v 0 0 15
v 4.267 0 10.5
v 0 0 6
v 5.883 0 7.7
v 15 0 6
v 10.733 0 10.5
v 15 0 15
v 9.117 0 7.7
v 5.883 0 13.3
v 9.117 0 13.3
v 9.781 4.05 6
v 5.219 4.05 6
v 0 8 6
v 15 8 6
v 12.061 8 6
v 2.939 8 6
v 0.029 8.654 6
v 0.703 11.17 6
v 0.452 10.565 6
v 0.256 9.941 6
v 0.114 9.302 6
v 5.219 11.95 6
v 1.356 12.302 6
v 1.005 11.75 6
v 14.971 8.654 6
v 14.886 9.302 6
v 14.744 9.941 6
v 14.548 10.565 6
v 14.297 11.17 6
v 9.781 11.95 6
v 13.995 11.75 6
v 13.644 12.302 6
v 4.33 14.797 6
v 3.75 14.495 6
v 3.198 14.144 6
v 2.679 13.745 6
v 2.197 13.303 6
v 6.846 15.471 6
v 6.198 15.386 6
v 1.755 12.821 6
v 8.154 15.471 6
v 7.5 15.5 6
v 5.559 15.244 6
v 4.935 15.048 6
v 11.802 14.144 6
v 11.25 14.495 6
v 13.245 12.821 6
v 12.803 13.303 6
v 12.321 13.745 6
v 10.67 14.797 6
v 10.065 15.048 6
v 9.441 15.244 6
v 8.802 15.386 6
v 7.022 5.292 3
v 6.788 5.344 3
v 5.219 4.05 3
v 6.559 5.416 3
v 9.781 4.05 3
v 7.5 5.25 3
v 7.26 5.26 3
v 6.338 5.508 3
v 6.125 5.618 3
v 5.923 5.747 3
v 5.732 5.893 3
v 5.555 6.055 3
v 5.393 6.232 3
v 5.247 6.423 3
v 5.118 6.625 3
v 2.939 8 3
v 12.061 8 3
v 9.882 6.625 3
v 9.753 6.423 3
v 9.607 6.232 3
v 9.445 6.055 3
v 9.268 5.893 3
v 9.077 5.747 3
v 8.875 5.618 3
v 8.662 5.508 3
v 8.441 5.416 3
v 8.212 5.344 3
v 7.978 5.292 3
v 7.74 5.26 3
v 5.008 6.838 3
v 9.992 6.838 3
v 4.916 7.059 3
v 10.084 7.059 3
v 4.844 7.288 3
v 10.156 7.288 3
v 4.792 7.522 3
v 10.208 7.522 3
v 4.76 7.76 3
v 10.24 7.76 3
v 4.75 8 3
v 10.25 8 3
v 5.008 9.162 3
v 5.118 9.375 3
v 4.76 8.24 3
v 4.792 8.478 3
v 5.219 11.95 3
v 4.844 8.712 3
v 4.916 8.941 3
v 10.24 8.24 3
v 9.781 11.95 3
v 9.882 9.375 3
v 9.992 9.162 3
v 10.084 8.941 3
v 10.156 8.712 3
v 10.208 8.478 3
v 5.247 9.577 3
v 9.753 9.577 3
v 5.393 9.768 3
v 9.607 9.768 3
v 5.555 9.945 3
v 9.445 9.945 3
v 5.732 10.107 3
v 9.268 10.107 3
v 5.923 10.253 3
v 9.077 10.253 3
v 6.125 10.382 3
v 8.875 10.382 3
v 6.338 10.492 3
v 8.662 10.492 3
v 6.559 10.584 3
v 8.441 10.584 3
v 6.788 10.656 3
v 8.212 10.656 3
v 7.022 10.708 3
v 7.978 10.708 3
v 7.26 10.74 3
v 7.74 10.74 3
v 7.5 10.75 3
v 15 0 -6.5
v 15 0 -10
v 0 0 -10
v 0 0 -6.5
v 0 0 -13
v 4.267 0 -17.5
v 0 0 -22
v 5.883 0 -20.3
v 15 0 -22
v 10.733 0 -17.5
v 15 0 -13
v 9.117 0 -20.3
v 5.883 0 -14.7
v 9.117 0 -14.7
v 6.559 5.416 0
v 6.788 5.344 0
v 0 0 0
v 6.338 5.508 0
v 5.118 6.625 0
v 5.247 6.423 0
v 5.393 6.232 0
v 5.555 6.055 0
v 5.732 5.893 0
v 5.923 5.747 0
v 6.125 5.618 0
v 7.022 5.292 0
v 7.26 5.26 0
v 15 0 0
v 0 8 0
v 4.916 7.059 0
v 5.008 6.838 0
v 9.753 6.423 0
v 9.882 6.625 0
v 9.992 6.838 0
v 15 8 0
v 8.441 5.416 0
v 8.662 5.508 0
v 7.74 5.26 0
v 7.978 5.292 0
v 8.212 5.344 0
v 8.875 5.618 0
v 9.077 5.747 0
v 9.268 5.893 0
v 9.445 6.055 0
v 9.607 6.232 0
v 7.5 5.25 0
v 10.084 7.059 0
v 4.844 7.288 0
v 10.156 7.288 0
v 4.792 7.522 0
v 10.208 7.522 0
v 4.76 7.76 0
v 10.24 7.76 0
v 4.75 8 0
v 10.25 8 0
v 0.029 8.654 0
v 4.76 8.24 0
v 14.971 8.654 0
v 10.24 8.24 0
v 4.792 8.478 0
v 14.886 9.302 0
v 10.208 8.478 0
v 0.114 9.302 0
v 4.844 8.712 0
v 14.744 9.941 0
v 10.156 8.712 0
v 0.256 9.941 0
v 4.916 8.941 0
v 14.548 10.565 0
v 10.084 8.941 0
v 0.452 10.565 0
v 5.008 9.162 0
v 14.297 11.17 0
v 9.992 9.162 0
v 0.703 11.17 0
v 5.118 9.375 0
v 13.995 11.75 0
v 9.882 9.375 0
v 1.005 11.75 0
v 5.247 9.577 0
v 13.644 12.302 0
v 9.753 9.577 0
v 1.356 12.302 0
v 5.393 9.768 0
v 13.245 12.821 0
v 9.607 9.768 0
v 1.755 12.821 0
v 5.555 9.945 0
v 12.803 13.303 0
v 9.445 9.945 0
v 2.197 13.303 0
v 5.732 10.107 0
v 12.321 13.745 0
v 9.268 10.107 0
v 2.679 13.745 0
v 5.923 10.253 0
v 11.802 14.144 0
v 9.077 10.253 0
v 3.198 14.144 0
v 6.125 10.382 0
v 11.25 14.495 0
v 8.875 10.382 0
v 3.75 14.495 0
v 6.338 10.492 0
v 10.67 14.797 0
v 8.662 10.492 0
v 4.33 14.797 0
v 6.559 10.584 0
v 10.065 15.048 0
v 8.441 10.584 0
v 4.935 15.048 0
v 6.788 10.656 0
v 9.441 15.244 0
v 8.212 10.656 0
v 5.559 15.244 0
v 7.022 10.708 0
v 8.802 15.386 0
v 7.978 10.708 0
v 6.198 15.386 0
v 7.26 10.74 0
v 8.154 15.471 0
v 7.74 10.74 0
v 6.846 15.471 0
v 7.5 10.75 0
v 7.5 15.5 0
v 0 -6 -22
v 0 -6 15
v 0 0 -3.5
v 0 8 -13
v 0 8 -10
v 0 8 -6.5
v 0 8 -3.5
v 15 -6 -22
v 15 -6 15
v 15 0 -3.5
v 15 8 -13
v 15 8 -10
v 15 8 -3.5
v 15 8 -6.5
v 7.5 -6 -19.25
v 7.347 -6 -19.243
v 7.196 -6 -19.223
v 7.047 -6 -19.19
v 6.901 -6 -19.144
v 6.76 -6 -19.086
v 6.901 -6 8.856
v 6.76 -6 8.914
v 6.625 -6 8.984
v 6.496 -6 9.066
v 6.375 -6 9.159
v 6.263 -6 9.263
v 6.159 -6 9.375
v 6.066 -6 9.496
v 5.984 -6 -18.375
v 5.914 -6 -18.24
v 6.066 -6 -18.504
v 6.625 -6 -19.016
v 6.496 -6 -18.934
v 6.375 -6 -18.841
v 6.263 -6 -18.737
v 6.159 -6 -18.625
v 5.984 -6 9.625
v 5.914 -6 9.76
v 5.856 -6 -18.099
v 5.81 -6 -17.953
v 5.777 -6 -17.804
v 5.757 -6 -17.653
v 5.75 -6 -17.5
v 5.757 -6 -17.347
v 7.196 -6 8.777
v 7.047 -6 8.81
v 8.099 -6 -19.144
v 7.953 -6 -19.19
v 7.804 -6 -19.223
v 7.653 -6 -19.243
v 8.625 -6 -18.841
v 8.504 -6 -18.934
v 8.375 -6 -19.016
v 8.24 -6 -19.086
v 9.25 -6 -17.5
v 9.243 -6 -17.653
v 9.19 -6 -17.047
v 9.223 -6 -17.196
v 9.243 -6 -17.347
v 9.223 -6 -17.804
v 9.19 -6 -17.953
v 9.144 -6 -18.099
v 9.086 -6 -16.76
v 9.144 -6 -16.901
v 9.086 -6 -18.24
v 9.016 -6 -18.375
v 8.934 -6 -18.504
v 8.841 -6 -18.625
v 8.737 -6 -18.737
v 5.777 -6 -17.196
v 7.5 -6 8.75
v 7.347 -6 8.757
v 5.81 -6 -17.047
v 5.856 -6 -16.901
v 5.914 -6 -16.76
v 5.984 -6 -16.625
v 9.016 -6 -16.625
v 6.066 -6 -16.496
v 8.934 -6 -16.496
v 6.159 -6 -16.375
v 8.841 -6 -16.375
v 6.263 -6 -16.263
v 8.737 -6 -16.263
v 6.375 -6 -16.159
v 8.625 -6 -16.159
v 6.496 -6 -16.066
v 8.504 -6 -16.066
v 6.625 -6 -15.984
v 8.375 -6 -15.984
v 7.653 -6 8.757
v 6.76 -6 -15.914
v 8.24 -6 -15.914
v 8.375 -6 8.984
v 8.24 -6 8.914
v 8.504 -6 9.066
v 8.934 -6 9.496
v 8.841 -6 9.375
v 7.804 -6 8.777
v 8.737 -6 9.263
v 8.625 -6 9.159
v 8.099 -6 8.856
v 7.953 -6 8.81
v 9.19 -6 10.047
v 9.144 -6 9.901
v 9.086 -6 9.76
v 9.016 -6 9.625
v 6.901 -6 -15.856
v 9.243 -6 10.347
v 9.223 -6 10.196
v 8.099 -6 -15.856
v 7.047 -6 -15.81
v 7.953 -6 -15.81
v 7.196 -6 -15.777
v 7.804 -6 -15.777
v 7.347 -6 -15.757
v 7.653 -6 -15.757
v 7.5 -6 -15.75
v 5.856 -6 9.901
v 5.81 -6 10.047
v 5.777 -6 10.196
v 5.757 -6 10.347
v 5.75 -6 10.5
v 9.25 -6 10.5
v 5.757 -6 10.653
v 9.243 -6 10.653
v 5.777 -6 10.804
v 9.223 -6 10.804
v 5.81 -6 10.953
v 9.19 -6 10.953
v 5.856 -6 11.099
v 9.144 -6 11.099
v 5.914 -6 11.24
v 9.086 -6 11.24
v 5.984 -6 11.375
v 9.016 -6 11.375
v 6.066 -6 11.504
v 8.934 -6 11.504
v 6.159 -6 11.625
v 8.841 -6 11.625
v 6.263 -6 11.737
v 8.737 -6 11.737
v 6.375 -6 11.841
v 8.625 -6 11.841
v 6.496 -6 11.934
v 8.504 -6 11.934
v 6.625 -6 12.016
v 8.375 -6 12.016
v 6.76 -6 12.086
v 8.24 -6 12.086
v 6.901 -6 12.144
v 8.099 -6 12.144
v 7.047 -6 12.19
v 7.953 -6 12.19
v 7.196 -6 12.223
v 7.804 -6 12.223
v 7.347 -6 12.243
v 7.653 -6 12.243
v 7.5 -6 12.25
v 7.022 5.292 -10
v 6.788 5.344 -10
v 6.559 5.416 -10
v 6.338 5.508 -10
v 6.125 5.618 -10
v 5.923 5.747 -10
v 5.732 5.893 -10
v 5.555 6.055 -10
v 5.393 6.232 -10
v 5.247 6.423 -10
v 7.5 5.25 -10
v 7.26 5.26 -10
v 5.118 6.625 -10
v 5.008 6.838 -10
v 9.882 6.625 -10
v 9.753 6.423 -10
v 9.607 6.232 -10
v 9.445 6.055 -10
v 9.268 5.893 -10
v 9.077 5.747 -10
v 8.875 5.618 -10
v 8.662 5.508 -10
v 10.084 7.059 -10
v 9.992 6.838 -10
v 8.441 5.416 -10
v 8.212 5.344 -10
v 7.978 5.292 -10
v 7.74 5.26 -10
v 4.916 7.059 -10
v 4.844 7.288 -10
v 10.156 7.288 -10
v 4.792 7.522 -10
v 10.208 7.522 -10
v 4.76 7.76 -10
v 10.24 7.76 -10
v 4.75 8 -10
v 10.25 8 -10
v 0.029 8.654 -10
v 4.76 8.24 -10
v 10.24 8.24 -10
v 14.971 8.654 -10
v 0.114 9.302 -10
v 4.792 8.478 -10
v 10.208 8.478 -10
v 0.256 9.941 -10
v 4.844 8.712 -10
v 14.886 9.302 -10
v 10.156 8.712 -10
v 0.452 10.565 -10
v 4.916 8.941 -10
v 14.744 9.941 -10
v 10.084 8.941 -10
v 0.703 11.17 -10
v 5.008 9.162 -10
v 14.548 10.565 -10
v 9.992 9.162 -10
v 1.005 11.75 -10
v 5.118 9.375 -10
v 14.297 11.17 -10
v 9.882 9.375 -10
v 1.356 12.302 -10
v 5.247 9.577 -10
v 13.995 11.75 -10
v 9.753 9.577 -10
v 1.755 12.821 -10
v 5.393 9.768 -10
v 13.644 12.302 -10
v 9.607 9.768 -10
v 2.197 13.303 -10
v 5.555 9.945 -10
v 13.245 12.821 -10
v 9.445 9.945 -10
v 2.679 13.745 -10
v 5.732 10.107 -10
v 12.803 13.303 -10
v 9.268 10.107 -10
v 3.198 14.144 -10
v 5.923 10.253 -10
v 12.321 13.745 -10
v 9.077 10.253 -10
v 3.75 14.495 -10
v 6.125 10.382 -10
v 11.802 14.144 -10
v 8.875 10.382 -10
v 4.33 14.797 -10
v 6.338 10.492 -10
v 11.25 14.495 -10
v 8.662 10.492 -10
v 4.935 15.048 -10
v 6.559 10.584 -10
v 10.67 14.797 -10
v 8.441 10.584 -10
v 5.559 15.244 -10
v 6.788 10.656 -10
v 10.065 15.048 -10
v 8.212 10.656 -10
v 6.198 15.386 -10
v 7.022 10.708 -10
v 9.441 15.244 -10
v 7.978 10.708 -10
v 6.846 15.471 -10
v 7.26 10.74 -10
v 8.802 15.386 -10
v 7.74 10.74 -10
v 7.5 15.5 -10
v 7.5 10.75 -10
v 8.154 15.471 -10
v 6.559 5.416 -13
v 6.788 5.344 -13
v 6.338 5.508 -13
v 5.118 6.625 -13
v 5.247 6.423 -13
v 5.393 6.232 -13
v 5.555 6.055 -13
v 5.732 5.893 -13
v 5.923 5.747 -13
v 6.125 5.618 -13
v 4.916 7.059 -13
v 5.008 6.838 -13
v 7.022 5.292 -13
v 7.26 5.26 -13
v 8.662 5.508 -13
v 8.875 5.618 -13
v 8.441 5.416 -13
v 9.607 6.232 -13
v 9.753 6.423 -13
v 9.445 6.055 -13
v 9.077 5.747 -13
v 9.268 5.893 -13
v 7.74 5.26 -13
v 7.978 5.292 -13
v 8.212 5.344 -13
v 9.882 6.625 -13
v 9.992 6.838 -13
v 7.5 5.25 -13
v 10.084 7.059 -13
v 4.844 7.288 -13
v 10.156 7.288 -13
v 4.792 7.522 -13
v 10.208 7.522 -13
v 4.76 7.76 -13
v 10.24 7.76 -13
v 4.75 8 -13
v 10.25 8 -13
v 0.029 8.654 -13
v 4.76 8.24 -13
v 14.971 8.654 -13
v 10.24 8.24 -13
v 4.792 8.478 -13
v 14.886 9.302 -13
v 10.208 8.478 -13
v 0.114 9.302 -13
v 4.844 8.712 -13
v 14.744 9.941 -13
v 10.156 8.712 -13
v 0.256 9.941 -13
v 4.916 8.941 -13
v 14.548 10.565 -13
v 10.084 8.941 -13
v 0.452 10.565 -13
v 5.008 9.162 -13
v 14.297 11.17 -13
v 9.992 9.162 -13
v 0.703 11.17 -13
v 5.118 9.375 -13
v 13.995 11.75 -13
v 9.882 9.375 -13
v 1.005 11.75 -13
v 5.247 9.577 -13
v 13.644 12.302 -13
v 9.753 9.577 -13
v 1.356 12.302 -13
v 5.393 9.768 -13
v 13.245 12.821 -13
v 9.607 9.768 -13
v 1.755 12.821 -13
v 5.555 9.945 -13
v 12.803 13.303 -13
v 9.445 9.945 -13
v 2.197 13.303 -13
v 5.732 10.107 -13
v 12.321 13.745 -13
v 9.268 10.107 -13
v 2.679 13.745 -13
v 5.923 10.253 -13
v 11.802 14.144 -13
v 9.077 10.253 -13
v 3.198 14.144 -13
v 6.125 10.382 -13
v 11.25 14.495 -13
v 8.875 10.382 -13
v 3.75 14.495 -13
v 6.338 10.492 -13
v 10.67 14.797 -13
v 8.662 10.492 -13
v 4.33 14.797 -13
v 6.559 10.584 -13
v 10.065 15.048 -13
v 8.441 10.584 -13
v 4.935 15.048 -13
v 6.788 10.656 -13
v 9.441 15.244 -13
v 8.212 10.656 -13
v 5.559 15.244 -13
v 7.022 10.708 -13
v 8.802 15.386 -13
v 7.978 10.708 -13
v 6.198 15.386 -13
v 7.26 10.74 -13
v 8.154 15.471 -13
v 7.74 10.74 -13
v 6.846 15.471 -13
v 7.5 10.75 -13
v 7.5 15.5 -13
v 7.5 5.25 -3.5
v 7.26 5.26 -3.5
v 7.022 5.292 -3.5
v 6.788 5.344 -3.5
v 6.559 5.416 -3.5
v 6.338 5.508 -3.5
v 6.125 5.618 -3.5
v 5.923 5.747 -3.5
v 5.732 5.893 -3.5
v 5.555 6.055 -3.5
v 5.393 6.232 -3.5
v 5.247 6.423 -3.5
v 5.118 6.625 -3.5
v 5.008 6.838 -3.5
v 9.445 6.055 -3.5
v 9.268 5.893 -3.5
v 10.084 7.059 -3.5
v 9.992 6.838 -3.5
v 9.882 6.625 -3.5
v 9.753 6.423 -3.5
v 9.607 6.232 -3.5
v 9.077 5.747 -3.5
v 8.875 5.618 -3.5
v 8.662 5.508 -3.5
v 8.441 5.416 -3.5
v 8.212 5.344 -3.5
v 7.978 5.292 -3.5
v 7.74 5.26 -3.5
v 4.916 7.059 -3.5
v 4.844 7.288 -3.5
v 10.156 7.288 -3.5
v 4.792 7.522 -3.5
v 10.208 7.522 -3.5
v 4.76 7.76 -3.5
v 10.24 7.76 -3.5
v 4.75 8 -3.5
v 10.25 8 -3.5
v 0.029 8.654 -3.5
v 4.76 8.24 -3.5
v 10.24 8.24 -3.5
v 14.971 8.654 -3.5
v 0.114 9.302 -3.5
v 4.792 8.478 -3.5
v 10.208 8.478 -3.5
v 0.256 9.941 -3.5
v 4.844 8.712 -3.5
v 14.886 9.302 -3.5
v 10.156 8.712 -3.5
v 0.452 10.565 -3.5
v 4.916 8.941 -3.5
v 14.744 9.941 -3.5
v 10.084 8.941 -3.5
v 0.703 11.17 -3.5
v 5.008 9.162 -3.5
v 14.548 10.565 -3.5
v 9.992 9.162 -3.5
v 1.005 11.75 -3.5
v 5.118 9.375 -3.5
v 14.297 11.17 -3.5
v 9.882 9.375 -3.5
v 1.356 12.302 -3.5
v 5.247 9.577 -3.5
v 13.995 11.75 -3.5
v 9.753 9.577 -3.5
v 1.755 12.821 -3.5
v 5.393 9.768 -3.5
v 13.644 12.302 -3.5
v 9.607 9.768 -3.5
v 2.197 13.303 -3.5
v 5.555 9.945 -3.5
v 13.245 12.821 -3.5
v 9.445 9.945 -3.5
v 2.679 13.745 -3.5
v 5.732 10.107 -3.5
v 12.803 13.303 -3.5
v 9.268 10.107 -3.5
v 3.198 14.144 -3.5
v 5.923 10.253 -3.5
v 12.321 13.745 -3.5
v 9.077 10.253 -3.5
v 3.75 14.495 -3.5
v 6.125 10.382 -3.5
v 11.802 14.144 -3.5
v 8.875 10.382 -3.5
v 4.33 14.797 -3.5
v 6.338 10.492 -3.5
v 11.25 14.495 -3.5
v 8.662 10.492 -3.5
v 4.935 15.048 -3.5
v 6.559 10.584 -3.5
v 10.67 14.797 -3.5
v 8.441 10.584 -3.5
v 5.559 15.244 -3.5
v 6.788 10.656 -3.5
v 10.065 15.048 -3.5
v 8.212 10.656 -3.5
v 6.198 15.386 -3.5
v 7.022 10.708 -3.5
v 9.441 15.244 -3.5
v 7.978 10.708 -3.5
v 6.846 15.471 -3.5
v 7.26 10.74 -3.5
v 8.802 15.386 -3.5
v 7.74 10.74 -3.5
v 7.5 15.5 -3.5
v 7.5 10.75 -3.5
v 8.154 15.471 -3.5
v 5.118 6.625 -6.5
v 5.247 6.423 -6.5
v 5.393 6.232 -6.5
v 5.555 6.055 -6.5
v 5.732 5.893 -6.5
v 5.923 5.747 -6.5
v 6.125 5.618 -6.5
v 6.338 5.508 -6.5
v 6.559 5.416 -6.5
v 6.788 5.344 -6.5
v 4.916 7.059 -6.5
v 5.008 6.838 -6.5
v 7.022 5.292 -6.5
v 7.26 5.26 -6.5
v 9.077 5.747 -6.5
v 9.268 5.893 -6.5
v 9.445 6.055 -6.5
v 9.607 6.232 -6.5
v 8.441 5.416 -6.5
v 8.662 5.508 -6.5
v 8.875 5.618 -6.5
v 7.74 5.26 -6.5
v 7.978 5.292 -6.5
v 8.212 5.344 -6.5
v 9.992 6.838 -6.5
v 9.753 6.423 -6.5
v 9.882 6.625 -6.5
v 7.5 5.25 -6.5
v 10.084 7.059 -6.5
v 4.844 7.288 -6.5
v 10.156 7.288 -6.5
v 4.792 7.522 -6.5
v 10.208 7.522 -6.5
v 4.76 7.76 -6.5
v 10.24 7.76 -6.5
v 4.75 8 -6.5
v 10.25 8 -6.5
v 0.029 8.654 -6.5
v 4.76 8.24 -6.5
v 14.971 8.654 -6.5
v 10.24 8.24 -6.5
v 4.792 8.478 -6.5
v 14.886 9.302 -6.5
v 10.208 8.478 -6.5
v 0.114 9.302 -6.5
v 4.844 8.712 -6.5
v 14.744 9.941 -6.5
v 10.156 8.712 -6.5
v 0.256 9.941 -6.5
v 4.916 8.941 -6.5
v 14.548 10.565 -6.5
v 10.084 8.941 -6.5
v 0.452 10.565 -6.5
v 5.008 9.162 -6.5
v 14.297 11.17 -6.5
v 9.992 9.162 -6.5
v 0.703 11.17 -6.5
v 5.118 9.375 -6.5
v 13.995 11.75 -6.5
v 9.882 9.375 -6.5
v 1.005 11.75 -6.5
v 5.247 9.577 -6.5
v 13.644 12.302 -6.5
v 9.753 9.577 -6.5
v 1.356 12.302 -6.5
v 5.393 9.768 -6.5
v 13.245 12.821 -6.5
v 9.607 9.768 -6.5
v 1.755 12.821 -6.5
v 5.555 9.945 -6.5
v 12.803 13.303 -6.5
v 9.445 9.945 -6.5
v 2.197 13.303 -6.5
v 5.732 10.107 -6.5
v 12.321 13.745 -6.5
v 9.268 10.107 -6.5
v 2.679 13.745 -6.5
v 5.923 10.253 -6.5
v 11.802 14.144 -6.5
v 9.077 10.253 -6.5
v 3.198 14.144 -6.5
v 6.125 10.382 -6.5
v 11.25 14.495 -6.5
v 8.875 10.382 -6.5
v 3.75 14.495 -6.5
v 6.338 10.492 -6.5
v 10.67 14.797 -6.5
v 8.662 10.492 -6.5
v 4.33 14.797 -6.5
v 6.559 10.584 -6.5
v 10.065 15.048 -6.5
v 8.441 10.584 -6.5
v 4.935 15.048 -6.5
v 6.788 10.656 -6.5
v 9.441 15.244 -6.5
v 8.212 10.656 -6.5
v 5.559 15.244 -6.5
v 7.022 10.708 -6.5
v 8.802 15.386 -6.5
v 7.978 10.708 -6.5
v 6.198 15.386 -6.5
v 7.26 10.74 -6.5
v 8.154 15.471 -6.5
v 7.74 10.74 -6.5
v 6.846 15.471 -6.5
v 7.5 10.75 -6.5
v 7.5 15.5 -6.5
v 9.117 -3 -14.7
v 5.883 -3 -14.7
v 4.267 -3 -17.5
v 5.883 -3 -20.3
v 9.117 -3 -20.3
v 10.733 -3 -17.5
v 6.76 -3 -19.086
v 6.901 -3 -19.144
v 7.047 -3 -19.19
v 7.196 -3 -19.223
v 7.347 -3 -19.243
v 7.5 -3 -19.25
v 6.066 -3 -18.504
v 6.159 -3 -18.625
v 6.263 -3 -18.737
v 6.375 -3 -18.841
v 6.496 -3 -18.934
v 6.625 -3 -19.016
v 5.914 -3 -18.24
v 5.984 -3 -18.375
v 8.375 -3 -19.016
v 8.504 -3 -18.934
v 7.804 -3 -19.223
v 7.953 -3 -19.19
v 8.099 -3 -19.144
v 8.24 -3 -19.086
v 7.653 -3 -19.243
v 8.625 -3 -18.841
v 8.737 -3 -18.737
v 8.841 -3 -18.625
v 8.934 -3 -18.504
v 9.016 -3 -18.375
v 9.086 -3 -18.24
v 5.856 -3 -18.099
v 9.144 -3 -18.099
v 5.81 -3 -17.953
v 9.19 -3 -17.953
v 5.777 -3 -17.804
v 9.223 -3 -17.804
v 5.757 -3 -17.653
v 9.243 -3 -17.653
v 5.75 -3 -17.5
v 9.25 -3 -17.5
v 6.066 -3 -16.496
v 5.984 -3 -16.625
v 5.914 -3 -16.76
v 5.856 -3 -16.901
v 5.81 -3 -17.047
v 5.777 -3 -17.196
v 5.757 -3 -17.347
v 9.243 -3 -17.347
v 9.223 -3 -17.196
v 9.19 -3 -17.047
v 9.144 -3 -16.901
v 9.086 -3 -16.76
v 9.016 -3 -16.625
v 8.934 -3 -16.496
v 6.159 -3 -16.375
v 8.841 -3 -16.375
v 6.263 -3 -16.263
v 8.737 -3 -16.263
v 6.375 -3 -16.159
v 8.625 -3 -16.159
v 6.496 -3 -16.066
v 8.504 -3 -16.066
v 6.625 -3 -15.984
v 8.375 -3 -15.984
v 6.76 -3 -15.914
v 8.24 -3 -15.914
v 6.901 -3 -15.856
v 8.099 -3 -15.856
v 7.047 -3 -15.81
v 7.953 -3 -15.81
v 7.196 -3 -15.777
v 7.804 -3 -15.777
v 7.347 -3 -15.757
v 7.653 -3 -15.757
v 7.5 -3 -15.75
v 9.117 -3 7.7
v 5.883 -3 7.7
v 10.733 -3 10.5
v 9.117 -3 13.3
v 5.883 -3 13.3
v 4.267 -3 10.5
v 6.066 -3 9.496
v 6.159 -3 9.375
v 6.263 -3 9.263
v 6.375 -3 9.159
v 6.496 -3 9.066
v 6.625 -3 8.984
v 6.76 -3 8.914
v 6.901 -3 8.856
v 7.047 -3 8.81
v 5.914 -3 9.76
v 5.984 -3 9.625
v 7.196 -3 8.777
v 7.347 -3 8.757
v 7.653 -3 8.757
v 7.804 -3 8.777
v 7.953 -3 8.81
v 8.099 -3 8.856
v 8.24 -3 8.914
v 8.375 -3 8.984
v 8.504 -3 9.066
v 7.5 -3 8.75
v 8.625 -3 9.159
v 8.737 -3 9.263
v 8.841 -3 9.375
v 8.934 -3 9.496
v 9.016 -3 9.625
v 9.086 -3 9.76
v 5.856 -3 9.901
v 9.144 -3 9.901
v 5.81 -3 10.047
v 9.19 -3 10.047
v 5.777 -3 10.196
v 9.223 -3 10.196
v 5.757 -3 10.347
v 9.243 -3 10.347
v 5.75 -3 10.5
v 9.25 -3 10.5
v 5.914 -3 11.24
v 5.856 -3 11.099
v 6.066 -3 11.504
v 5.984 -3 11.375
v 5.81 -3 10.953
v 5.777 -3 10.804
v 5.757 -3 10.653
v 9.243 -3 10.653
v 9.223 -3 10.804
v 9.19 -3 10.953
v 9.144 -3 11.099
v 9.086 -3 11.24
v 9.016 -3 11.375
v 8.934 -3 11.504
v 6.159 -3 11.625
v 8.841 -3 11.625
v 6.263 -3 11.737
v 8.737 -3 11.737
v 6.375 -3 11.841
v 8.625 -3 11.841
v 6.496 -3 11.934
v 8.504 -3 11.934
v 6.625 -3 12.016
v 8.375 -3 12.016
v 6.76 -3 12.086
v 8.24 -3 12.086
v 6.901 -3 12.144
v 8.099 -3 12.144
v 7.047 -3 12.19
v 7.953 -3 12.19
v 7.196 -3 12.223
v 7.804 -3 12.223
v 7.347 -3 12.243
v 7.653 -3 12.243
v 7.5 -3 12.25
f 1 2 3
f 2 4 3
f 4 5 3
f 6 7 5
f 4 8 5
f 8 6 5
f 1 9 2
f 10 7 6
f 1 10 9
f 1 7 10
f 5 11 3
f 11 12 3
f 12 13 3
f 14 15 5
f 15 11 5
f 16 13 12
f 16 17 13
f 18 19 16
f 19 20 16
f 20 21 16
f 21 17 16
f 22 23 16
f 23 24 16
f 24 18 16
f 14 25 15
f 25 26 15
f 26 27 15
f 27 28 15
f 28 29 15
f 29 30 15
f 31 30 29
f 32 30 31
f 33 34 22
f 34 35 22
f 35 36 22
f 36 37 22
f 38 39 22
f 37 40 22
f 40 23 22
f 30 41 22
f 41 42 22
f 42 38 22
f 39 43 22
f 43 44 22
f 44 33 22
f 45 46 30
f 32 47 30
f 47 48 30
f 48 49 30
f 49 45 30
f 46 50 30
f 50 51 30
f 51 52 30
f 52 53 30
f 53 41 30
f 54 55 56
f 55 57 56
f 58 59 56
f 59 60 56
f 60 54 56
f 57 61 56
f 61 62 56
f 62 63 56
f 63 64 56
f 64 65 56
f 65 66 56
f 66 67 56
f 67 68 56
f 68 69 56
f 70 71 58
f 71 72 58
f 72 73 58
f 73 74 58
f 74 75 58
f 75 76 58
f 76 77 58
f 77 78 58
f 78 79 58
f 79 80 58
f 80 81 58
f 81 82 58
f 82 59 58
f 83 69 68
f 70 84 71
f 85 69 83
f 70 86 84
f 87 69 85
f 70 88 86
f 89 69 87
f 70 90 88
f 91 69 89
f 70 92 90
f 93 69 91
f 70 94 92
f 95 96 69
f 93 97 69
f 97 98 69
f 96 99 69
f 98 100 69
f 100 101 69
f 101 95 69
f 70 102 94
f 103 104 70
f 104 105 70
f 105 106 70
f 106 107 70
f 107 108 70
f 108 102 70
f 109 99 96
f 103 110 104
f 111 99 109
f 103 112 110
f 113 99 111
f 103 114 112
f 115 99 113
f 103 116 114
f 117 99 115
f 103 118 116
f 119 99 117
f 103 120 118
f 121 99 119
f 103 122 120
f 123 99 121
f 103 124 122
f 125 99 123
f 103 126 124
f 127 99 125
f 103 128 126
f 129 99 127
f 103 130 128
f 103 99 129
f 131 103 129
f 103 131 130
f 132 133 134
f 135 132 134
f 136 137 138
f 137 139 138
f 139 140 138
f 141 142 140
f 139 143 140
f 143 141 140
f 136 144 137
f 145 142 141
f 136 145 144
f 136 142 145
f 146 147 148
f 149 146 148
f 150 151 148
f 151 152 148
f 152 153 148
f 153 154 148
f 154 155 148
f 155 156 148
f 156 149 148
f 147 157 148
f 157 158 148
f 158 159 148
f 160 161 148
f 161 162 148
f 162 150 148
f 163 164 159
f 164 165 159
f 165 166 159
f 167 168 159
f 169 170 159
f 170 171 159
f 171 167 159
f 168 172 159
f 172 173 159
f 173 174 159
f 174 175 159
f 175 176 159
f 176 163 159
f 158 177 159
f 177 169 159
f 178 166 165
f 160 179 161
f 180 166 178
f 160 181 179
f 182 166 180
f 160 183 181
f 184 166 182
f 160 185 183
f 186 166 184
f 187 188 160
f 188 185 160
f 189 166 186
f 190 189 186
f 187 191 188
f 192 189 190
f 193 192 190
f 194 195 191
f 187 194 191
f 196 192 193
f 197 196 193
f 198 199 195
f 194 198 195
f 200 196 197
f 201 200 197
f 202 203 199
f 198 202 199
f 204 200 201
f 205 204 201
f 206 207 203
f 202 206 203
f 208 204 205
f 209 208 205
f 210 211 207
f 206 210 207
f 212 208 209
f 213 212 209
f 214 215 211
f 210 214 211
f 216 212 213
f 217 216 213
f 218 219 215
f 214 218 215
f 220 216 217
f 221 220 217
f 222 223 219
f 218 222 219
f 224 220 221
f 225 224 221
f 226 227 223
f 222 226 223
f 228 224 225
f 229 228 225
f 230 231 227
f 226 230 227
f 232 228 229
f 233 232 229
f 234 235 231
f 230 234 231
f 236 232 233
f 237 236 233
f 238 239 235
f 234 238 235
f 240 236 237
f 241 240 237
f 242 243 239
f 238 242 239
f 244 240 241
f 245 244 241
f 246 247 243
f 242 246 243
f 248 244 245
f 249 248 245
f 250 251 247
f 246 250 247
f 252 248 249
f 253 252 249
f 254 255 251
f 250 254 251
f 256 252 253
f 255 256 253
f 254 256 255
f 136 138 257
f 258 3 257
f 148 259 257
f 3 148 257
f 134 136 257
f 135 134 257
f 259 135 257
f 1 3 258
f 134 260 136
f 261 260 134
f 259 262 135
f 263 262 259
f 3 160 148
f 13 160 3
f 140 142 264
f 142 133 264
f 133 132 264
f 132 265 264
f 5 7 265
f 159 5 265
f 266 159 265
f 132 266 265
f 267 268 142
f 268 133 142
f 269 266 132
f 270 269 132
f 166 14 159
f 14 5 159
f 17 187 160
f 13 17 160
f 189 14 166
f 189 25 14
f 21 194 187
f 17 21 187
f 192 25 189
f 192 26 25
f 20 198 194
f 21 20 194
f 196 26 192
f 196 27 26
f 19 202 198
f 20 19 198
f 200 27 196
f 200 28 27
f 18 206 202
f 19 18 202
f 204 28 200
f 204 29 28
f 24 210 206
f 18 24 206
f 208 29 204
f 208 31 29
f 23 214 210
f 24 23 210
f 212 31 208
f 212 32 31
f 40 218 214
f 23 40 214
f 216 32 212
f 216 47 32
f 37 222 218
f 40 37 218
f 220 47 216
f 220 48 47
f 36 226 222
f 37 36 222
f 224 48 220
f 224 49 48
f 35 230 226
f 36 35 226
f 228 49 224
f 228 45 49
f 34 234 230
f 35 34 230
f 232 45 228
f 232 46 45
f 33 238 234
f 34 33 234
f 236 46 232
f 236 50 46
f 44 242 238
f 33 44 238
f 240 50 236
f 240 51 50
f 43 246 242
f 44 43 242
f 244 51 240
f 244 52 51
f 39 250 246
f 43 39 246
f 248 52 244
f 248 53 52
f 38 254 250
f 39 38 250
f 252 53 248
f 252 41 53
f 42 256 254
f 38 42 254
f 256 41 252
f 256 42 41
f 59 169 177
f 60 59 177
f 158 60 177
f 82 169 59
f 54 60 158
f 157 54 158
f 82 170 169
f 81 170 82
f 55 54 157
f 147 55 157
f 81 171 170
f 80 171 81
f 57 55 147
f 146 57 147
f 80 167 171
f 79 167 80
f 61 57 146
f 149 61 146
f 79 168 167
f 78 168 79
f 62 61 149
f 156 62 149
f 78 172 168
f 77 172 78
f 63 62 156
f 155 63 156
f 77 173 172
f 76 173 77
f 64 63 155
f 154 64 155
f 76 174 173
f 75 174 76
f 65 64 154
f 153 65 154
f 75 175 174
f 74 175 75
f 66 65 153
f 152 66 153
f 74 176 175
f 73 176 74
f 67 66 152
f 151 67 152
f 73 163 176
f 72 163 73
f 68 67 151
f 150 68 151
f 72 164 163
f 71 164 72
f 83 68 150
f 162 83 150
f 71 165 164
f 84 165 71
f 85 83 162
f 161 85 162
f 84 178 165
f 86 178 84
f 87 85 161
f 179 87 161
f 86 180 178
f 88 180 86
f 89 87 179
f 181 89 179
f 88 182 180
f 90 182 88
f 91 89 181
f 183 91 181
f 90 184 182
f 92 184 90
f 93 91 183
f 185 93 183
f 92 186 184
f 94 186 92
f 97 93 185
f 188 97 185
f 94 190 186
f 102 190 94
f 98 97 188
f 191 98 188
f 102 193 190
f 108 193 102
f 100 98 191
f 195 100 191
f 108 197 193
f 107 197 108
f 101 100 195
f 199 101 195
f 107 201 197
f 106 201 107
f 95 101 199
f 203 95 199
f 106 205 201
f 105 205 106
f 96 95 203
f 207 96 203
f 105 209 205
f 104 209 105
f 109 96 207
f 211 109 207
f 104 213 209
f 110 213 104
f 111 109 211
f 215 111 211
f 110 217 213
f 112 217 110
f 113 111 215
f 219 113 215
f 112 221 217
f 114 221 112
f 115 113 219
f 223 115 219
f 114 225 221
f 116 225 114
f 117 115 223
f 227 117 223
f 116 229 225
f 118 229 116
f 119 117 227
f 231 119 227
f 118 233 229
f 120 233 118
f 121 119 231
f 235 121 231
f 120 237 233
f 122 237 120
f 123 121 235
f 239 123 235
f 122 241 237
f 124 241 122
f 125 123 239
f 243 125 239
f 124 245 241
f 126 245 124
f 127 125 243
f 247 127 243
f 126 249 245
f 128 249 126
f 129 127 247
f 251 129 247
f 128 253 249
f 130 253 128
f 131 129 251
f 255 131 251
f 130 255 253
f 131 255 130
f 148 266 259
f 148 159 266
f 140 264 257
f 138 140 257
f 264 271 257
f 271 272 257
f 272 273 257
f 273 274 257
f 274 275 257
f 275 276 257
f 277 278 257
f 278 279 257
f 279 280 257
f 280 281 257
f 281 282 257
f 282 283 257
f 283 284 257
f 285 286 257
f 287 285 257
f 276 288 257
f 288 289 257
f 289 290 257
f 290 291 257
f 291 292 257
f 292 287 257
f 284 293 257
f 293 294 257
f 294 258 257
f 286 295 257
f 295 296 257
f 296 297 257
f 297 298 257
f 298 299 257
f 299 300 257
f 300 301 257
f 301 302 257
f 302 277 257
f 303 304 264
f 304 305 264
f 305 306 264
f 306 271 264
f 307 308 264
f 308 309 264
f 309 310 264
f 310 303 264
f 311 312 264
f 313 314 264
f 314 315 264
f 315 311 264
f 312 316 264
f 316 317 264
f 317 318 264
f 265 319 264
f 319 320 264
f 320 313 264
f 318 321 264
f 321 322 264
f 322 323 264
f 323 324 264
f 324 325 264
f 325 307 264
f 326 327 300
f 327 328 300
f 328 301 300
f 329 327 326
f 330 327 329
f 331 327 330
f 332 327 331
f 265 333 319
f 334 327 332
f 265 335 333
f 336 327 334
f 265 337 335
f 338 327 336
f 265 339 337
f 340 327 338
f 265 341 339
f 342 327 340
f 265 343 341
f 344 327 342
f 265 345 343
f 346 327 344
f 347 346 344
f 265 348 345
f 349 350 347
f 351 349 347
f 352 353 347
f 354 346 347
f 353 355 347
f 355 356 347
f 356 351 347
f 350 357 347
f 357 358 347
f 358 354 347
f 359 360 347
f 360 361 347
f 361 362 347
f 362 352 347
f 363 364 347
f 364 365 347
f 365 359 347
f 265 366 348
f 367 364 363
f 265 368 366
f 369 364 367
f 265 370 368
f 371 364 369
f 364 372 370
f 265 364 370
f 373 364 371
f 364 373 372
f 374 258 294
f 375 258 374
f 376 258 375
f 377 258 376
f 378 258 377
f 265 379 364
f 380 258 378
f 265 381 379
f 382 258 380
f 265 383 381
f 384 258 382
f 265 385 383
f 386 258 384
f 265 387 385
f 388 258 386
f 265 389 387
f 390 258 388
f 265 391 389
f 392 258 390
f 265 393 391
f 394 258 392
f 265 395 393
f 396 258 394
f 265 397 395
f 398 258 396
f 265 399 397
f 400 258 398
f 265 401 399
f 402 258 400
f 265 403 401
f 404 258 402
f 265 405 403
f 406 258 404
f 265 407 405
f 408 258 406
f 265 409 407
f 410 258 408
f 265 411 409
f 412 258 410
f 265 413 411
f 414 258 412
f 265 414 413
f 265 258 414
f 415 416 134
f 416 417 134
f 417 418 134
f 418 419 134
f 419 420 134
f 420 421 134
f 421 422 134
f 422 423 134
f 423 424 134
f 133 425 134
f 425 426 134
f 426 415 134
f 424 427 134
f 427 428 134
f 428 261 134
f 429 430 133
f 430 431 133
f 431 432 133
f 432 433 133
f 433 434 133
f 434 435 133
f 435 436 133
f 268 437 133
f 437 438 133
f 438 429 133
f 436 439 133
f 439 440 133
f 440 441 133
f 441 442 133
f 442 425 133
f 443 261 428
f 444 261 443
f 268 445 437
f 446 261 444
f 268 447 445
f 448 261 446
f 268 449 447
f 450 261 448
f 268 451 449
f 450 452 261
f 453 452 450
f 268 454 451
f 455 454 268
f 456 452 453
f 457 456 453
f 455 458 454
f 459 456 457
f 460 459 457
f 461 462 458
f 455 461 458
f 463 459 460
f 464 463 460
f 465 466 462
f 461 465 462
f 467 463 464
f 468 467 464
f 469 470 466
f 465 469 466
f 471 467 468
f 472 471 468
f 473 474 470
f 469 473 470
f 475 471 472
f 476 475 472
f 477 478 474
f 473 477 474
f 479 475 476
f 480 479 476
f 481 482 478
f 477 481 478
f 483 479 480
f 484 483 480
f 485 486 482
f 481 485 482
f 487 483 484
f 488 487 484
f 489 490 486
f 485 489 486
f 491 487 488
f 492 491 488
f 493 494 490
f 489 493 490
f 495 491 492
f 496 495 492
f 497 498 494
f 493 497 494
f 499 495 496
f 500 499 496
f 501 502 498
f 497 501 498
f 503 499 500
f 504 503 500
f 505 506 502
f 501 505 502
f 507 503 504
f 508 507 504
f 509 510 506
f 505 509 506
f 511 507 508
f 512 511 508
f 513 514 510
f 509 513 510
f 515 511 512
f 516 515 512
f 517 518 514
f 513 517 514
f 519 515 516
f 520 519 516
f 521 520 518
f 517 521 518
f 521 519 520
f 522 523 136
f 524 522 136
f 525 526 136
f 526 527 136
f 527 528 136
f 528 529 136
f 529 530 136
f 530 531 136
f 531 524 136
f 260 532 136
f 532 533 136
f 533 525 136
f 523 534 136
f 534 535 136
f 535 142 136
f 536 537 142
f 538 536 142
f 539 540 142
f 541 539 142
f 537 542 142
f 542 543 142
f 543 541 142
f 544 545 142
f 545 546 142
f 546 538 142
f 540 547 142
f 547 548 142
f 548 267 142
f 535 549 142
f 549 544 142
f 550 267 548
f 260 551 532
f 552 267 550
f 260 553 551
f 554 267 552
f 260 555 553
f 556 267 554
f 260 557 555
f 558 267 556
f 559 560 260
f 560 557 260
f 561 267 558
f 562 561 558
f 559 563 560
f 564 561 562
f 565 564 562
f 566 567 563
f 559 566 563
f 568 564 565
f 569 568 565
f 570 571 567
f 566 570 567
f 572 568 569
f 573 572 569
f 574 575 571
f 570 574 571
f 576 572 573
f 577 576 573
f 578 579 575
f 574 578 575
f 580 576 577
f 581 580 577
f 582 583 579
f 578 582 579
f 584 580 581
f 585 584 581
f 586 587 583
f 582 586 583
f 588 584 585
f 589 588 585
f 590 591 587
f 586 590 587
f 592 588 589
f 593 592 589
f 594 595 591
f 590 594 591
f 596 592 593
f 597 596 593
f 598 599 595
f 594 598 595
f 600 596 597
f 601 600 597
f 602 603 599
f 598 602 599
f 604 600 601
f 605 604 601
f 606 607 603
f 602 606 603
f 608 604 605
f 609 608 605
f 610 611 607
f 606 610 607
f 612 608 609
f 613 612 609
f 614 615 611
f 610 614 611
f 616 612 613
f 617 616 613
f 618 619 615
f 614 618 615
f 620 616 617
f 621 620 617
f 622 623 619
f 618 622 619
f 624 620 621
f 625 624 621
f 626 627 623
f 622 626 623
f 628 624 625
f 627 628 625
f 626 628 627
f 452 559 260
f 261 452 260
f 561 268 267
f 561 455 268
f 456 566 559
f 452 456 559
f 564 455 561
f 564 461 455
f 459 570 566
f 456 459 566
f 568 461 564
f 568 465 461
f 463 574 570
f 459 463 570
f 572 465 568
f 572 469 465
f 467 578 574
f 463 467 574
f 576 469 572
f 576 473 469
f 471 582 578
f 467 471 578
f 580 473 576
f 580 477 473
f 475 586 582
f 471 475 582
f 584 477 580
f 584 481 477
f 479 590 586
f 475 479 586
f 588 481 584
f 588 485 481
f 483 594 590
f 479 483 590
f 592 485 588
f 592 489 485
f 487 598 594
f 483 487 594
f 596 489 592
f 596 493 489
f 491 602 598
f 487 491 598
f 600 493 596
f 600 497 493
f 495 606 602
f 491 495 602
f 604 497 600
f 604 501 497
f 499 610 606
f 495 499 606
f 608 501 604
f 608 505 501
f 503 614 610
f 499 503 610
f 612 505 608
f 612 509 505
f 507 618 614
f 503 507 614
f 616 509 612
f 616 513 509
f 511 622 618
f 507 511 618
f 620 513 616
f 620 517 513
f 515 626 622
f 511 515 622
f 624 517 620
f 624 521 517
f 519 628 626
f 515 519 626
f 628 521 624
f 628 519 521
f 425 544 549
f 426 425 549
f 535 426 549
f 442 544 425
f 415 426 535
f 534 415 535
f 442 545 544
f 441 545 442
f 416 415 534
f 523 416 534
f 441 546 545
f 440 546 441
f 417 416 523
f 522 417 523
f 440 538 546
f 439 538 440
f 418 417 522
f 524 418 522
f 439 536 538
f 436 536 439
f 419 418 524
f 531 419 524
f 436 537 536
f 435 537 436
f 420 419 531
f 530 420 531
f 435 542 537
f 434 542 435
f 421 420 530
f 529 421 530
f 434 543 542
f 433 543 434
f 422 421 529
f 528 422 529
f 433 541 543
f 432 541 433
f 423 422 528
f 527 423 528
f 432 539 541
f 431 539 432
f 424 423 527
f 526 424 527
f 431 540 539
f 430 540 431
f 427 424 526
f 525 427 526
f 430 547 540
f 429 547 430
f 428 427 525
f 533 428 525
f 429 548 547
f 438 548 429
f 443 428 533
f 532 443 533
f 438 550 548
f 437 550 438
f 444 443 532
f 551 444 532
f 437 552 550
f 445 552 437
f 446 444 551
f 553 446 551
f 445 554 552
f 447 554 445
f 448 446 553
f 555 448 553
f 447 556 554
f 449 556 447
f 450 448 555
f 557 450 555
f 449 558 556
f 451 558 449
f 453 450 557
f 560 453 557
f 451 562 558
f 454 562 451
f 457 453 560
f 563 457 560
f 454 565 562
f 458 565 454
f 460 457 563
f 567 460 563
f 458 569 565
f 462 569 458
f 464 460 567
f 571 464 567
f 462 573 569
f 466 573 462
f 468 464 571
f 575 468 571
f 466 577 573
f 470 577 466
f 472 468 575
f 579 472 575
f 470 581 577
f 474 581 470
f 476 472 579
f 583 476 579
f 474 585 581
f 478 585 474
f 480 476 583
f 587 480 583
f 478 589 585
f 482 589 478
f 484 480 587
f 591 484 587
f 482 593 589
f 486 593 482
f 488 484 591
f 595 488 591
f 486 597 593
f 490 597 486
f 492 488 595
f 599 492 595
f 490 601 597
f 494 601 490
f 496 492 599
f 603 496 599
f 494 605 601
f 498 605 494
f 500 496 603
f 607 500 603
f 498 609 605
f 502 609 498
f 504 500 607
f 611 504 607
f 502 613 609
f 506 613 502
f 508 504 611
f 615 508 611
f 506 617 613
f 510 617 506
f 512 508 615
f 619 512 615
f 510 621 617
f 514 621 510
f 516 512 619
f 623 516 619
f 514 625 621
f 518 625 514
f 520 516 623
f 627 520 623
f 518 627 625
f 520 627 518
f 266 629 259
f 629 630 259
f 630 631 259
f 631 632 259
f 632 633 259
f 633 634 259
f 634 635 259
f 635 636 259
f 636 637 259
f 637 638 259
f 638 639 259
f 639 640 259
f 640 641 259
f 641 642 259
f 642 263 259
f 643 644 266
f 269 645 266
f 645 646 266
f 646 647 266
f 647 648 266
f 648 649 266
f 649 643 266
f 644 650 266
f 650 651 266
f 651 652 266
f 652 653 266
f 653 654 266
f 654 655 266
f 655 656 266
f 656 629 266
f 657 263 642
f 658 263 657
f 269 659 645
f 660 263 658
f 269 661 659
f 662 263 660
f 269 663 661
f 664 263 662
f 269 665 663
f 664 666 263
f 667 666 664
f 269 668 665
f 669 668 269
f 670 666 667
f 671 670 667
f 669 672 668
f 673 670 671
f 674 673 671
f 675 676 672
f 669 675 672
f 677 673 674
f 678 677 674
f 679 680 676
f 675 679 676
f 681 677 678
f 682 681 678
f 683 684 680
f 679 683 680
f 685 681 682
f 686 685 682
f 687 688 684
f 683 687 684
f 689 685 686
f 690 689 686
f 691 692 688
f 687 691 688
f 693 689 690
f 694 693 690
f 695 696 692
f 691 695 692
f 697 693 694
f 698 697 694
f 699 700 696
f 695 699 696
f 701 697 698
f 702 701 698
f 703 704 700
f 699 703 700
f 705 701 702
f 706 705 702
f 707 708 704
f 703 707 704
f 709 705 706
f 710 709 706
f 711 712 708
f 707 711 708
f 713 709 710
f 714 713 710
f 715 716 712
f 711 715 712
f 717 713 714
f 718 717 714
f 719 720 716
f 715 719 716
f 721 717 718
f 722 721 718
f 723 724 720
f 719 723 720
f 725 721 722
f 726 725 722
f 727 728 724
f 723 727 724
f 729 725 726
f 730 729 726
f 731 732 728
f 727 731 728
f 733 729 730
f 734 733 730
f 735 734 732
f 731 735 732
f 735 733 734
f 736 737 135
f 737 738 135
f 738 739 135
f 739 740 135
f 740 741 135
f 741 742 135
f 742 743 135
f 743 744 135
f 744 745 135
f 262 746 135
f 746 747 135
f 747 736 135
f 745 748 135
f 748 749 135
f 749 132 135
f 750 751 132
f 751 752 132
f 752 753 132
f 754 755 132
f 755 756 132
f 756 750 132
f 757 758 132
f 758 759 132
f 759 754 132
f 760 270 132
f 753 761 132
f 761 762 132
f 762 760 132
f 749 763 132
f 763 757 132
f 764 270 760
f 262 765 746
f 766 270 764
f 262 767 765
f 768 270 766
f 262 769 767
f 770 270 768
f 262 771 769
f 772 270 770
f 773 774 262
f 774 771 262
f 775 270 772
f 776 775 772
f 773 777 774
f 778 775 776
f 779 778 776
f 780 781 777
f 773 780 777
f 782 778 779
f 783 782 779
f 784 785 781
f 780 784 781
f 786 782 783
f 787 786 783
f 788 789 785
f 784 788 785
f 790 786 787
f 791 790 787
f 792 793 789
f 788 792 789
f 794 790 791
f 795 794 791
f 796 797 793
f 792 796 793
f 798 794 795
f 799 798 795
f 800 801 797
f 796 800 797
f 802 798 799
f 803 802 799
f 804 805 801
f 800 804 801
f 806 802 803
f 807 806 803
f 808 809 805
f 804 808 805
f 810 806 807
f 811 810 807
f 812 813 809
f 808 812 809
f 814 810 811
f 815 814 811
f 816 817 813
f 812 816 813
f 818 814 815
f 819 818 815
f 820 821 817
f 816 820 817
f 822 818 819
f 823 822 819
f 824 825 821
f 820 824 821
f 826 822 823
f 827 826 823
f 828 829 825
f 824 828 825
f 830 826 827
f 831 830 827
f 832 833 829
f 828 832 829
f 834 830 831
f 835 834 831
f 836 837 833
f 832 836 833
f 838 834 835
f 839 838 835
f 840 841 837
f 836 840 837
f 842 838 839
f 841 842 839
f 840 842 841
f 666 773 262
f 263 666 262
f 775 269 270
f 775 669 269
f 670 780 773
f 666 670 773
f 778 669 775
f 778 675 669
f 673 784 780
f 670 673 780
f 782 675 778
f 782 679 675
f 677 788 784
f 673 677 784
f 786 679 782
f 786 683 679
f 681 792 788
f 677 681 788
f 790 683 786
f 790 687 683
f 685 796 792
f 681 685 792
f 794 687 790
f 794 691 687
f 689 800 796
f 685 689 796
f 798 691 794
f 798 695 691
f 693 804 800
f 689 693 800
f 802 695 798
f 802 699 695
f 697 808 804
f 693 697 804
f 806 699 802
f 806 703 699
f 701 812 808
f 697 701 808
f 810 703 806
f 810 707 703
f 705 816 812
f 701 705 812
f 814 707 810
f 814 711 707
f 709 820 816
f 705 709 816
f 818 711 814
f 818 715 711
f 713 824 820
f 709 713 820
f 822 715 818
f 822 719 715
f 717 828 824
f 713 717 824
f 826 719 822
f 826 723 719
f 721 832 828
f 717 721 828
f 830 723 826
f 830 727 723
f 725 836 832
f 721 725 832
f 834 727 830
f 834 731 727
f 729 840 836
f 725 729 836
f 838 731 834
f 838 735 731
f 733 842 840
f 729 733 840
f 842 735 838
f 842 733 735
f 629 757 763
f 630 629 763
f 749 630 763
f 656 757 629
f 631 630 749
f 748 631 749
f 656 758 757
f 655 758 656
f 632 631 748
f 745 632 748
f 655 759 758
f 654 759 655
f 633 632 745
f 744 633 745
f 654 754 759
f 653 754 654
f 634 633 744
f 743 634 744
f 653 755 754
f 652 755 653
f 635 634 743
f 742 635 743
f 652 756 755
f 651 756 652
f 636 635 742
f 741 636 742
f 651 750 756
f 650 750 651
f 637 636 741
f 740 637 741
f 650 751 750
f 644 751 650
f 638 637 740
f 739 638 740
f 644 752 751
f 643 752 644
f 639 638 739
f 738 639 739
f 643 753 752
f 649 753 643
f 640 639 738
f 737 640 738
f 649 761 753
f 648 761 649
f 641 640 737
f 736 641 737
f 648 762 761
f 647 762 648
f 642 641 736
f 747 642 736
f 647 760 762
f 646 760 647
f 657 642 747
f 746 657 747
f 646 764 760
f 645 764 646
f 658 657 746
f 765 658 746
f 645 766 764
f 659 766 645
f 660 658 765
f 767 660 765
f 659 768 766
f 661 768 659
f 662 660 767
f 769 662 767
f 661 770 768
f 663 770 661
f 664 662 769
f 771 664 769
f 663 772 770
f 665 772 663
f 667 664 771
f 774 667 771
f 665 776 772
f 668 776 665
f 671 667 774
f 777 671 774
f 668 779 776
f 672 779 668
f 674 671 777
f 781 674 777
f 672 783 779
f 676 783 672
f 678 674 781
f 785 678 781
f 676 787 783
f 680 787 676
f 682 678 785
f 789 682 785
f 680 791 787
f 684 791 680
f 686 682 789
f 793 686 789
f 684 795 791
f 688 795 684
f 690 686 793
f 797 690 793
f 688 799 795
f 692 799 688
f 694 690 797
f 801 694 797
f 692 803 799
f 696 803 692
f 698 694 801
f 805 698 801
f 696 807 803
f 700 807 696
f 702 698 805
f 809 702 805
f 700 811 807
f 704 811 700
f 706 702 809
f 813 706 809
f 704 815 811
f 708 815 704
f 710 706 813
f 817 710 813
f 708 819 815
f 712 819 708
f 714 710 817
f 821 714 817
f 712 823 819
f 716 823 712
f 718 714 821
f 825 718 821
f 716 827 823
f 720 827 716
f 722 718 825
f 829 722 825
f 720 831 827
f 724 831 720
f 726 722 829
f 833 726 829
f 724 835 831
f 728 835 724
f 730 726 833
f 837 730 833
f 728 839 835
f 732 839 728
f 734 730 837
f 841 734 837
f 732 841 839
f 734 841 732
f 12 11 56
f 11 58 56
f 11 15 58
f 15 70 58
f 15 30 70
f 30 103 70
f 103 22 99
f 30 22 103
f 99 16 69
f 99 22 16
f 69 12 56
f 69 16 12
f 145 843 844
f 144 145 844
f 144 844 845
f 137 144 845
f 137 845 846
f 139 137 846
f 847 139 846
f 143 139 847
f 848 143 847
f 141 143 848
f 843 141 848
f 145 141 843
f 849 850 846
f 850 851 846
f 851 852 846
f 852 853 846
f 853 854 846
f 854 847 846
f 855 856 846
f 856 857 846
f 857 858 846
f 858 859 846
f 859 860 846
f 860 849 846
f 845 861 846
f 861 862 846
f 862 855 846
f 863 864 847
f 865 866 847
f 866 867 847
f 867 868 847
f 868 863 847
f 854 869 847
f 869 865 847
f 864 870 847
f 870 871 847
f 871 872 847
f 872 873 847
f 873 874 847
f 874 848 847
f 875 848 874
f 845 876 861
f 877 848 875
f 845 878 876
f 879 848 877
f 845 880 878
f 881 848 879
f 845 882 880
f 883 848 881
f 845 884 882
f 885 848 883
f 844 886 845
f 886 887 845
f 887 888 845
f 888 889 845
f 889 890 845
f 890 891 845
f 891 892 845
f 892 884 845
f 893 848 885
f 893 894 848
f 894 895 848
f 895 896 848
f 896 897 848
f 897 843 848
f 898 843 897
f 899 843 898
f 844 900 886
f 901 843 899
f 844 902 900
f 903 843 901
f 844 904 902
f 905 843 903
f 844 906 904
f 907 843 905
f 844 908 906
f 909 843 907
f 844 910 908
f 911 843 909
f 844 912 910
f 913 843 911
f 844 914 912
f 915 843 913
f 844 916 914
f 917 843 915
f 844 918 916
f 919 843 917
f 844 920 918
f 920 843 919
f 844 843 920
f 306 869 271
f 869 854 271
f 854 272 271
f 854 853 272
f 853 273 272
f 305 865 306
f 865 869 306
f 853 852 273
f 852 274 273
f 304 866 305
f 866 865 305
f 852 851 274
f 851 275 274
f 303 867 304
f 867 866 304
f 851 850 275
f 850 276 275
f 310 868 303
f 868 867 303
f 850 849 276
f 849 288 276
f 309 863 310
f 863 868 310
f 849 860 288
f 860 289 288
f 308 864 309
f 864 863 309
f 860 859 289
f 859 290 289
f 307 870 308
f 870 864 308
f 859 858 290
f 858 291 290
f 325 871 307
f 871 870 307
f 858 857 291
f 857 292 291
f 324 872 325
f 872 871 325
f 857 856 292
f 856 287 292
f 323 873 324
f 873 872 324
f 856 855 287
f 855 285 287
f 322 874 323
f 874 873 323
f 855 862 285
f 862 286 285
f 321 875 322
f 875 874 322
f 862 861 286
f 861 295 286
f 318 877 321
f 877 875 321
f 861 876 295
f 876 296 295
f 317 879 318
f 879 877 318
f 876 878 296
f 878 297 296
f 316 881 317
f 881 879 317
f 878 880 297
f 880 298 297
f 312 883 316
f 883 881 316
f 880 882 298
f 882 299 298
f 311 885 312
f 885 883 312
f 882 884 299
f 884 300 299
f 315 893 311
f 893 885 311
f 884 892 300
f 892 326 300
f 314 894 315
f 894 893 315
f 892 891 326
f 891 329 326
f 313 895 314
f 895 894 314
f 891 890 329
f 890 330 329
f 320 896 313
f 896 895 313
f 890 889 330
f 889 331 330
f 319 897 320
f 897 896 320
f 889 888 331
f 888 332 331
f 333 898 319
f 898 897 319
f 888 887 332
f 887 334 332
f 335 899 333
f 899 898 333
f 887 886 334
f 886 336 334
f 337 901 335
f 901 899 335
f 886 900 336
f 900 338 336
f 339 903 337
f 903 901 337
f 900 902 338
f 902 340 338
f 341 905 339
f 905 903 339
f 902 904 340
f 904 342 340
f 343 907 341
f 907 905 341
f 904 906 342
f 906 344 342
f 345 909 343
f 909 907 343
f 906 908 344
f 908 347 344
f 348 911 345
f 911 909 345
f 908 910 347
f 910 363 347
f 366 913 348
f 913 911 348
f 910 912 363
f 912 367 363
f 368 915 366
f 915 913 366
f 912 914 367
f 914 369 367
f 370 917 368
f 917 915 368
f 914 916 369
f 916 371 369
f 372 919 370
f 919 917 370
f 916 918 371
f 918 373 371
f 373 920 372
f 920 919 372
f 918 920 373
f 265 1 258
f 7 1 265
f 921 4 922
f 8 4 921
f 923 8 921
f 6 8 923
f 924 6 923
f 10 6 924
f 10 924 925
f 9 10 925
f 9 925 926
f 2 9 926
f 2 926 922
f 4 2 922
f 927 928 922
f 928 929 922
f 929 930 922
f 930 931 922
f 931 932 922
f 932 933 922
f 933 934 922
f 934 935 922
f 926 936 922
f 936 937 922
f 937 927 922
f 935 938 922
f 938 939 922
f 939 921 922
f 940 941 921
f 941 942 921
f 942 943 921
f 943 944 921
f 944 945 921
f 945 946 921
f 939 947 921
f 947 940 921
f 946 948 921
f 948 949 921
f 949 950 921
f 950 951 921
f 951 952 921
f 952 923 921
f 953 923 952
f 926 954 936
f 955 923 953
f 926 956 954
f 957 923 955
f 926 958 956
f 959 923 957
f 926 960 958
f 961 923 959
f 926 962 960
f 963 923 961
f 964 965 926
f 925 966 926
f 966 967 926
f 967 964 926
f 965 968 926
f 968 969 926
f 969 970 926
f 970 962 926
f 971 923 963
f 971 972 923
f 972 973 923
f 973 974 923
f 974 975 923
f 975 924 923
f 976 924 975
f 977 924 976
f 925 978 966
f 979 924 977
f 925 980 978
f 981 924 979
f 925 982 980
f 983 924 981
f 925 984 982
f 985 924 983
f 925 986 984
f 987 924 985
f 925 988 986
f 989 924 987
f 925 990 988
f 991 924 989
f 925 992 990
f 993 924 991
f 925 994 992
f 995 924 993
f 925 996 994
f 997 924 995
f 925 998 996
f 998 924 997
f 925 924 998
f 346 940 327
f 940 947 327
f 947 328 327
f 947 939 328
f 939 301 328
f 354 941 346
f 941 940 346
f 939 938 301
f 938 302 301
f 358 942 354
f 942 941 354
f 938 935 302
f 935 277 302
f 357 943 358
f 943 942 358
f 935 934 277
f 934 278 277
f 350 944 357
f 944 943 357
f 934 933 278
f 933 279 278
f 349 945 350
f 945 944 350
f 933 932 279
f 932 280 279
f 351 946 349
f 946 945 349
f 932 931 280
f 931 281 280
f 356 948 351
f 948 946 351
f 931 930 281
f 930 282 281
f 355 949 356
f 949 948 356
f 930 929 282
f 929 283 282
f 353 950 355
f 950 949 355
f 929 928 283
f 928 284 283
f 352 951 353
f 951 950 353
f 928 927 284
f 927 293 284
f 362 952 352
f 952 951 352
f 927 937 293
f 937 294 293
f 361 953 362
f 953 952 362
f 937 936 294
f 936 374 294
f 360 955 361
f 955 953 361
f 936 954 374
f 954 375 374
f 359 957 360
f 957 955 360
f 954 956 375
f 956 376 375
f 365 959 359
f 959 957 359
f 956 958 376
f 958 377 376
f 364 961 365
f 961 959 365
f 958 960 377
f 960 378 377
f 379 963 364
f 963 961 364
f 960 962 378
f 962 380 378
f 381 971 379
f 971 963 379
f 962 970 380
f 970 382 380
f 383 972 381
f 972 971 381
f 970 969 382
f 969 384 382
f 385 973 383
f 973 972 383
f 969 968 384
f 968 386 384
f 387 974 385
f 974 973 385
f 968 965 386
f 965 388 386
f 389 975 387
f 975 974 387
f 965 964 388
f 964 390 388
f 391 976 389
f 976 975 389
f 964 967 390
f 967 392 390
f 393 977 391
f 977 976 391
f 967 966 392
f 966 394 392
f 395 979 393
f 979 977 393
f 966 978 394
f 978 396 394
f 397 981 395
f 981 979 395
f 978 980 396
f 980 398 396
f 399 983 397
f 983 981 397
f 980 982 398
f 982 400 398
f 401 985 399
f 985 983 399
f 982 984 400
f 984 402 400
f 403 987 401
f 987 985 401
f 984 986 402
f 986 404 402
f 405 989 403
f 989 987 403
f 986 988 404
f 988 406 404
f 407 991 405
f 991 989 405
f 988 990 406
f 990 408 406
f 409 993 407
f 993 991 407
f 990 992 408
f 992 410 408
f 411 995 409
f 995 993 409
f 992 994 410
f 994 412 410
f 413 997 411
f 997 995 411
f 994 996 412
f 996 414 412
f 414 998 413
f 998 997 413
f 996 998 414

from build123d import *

# Parameters (mm, degrees)
ESQUISSE1_R                = 2.75
BOSS_EXTRU_1_DEPTH         = 3
ESQUISSE2_W                = 15
ESQUISSE2_H                = 25
BOSS_EXTRU_2_DEPTH         = 6
R_P_TITION_LIN_AIRE1_COUNT = 3
R_P_TITION_LIN_AIRE1_PITCH = 6.5
BOSS_EXTRU_3_DEPTH         = 3
ENL_V_MAT_EXTRU_1_DEPTH    = 3
ESQUISSE4_3_R              = 1.75
ENL_V_MAT_EXTRU_3_DEPTH    = 31.809901006


with BuildPart() as part:
    # Esquisse1 → Boss.-Extru.1 (new body)
    with BuildSketch(Plane.XY):
        with BuildLine():
            Line((0, 0), (15, 0))
            Line((15, 0), (15, 8))
            ThreePointArc((15, 8), (7.5, 15.5), (0, 8))
            Line((0, 8), (0, 0))
        make_face()
        with Locations((7.5, 8)):
            Circle(ESQUISSE1_R, mode=Mode.SUBTRACT)
    boss_extru_1 = extrude(amount=BOSS_EXTRU_1_DEPTH)

    # Esquisse2 → Boss.-Extru.2 (add)
    with BuildSketch(Plane.XZ):
        with Locations((7.5, -9.5)):
            Rectangle(ESQUISSE2_W, ESQUISSE2_H)
    boss_extru_2 = extrude(amount=BOSS_EXTRU_2_DEPTH)

    # Répétition linéaire1: Boss.-Extru.1 ×3
    with Locations(*[(0, 0, -i * R_P_TITION_LIN_AIRE1_PITCH) for i in range(1, R_P_TITION_LIN_AIRE1_COUNT)]):
        add(boss_extru_1)

    # Esquisse3 → Boss.-Extru.3 (add)
    with BuildSketch(Plane.XY.offset(3)):
        with BuildLine():
            Line((0, 8), (0, -6))
            Line((0, -6), (15, -6))
            Line((15, -6), (15, 8))
            ThreePointArc((15, 8), (7.5, 15.5), (0, 8))
        make_face()
        Polygon((9.780533563, 4.05), (12.061067127, 8), (9.780533563, 11.95), (5.219466437, 11.95), (2.938932873, 8), (5.219466437, 4.05), align=None, mode=Mode.SUBTRACT)
    extrude(amount=BOSS_EXTRU_3_DEPTH)

    # Esquisse4 → Enlèv. mat.-Extru.1 (cut)
    with BuildSketch(Plane(origin=(0, 0, 0), x_dir=(1, 0, 0), z_dir=(0, 1, 0))):
        Polygon((9.116580754, 14.7), (10.733161507, 17.5), (9.116580754, 20.3), (5.883419246, 20.3), (4.266838493, 17.5), (5.883419246, 14.7), align=None)
    enl_v_mat_extru_1 = extrude(amount=-ENL_V_MAT_EXTRU_1_DEPTH, mode=Mode.SUBTRACT)

    # Esquisse4<3> → Enlèv. mat.-Extru.3 (cut, through all)
    with BuildSketch(Plane(origin=(0, 0, 0), x_dir=(1, 0, 0), z_dir=(0, 1, 0))):
        with Locations((7.5, 17.5)):
            Circle(ESQUISSE4_3_R)
    enl_v_mat_extru_3 = extrude(amount=-ENL_V_MAT_EXTRU_3_DEPTH, mode=Mode.SUBTRACT)

    # Symétrie1: Boss.-Extru.2, Enlèv. mat.-Extru.1, Enlèv. mat.-Extru.3 across plane
    add(boss_extru_2.mirror(Plane(origin=(0, 0, -3.5), x_dir=(1, 0, 0), z_dir=(0, 0, -1))))
    add(enl_v_mat_extru_1.mirror(Plane(origin=(0, 0, -3.5), x_dir=(1, 0, 0), z_dir=(0, 0, -1))), mode=Mode.SUBTRACT)
    add(enl_v_mat_extru_3.mirror(Plane(origin=(0, 0, -3.5), x_dir=(1, 0, 0), z_dir=(0, 0, -1))), mode=Mode.SUBTRACT)


solid = part.part
